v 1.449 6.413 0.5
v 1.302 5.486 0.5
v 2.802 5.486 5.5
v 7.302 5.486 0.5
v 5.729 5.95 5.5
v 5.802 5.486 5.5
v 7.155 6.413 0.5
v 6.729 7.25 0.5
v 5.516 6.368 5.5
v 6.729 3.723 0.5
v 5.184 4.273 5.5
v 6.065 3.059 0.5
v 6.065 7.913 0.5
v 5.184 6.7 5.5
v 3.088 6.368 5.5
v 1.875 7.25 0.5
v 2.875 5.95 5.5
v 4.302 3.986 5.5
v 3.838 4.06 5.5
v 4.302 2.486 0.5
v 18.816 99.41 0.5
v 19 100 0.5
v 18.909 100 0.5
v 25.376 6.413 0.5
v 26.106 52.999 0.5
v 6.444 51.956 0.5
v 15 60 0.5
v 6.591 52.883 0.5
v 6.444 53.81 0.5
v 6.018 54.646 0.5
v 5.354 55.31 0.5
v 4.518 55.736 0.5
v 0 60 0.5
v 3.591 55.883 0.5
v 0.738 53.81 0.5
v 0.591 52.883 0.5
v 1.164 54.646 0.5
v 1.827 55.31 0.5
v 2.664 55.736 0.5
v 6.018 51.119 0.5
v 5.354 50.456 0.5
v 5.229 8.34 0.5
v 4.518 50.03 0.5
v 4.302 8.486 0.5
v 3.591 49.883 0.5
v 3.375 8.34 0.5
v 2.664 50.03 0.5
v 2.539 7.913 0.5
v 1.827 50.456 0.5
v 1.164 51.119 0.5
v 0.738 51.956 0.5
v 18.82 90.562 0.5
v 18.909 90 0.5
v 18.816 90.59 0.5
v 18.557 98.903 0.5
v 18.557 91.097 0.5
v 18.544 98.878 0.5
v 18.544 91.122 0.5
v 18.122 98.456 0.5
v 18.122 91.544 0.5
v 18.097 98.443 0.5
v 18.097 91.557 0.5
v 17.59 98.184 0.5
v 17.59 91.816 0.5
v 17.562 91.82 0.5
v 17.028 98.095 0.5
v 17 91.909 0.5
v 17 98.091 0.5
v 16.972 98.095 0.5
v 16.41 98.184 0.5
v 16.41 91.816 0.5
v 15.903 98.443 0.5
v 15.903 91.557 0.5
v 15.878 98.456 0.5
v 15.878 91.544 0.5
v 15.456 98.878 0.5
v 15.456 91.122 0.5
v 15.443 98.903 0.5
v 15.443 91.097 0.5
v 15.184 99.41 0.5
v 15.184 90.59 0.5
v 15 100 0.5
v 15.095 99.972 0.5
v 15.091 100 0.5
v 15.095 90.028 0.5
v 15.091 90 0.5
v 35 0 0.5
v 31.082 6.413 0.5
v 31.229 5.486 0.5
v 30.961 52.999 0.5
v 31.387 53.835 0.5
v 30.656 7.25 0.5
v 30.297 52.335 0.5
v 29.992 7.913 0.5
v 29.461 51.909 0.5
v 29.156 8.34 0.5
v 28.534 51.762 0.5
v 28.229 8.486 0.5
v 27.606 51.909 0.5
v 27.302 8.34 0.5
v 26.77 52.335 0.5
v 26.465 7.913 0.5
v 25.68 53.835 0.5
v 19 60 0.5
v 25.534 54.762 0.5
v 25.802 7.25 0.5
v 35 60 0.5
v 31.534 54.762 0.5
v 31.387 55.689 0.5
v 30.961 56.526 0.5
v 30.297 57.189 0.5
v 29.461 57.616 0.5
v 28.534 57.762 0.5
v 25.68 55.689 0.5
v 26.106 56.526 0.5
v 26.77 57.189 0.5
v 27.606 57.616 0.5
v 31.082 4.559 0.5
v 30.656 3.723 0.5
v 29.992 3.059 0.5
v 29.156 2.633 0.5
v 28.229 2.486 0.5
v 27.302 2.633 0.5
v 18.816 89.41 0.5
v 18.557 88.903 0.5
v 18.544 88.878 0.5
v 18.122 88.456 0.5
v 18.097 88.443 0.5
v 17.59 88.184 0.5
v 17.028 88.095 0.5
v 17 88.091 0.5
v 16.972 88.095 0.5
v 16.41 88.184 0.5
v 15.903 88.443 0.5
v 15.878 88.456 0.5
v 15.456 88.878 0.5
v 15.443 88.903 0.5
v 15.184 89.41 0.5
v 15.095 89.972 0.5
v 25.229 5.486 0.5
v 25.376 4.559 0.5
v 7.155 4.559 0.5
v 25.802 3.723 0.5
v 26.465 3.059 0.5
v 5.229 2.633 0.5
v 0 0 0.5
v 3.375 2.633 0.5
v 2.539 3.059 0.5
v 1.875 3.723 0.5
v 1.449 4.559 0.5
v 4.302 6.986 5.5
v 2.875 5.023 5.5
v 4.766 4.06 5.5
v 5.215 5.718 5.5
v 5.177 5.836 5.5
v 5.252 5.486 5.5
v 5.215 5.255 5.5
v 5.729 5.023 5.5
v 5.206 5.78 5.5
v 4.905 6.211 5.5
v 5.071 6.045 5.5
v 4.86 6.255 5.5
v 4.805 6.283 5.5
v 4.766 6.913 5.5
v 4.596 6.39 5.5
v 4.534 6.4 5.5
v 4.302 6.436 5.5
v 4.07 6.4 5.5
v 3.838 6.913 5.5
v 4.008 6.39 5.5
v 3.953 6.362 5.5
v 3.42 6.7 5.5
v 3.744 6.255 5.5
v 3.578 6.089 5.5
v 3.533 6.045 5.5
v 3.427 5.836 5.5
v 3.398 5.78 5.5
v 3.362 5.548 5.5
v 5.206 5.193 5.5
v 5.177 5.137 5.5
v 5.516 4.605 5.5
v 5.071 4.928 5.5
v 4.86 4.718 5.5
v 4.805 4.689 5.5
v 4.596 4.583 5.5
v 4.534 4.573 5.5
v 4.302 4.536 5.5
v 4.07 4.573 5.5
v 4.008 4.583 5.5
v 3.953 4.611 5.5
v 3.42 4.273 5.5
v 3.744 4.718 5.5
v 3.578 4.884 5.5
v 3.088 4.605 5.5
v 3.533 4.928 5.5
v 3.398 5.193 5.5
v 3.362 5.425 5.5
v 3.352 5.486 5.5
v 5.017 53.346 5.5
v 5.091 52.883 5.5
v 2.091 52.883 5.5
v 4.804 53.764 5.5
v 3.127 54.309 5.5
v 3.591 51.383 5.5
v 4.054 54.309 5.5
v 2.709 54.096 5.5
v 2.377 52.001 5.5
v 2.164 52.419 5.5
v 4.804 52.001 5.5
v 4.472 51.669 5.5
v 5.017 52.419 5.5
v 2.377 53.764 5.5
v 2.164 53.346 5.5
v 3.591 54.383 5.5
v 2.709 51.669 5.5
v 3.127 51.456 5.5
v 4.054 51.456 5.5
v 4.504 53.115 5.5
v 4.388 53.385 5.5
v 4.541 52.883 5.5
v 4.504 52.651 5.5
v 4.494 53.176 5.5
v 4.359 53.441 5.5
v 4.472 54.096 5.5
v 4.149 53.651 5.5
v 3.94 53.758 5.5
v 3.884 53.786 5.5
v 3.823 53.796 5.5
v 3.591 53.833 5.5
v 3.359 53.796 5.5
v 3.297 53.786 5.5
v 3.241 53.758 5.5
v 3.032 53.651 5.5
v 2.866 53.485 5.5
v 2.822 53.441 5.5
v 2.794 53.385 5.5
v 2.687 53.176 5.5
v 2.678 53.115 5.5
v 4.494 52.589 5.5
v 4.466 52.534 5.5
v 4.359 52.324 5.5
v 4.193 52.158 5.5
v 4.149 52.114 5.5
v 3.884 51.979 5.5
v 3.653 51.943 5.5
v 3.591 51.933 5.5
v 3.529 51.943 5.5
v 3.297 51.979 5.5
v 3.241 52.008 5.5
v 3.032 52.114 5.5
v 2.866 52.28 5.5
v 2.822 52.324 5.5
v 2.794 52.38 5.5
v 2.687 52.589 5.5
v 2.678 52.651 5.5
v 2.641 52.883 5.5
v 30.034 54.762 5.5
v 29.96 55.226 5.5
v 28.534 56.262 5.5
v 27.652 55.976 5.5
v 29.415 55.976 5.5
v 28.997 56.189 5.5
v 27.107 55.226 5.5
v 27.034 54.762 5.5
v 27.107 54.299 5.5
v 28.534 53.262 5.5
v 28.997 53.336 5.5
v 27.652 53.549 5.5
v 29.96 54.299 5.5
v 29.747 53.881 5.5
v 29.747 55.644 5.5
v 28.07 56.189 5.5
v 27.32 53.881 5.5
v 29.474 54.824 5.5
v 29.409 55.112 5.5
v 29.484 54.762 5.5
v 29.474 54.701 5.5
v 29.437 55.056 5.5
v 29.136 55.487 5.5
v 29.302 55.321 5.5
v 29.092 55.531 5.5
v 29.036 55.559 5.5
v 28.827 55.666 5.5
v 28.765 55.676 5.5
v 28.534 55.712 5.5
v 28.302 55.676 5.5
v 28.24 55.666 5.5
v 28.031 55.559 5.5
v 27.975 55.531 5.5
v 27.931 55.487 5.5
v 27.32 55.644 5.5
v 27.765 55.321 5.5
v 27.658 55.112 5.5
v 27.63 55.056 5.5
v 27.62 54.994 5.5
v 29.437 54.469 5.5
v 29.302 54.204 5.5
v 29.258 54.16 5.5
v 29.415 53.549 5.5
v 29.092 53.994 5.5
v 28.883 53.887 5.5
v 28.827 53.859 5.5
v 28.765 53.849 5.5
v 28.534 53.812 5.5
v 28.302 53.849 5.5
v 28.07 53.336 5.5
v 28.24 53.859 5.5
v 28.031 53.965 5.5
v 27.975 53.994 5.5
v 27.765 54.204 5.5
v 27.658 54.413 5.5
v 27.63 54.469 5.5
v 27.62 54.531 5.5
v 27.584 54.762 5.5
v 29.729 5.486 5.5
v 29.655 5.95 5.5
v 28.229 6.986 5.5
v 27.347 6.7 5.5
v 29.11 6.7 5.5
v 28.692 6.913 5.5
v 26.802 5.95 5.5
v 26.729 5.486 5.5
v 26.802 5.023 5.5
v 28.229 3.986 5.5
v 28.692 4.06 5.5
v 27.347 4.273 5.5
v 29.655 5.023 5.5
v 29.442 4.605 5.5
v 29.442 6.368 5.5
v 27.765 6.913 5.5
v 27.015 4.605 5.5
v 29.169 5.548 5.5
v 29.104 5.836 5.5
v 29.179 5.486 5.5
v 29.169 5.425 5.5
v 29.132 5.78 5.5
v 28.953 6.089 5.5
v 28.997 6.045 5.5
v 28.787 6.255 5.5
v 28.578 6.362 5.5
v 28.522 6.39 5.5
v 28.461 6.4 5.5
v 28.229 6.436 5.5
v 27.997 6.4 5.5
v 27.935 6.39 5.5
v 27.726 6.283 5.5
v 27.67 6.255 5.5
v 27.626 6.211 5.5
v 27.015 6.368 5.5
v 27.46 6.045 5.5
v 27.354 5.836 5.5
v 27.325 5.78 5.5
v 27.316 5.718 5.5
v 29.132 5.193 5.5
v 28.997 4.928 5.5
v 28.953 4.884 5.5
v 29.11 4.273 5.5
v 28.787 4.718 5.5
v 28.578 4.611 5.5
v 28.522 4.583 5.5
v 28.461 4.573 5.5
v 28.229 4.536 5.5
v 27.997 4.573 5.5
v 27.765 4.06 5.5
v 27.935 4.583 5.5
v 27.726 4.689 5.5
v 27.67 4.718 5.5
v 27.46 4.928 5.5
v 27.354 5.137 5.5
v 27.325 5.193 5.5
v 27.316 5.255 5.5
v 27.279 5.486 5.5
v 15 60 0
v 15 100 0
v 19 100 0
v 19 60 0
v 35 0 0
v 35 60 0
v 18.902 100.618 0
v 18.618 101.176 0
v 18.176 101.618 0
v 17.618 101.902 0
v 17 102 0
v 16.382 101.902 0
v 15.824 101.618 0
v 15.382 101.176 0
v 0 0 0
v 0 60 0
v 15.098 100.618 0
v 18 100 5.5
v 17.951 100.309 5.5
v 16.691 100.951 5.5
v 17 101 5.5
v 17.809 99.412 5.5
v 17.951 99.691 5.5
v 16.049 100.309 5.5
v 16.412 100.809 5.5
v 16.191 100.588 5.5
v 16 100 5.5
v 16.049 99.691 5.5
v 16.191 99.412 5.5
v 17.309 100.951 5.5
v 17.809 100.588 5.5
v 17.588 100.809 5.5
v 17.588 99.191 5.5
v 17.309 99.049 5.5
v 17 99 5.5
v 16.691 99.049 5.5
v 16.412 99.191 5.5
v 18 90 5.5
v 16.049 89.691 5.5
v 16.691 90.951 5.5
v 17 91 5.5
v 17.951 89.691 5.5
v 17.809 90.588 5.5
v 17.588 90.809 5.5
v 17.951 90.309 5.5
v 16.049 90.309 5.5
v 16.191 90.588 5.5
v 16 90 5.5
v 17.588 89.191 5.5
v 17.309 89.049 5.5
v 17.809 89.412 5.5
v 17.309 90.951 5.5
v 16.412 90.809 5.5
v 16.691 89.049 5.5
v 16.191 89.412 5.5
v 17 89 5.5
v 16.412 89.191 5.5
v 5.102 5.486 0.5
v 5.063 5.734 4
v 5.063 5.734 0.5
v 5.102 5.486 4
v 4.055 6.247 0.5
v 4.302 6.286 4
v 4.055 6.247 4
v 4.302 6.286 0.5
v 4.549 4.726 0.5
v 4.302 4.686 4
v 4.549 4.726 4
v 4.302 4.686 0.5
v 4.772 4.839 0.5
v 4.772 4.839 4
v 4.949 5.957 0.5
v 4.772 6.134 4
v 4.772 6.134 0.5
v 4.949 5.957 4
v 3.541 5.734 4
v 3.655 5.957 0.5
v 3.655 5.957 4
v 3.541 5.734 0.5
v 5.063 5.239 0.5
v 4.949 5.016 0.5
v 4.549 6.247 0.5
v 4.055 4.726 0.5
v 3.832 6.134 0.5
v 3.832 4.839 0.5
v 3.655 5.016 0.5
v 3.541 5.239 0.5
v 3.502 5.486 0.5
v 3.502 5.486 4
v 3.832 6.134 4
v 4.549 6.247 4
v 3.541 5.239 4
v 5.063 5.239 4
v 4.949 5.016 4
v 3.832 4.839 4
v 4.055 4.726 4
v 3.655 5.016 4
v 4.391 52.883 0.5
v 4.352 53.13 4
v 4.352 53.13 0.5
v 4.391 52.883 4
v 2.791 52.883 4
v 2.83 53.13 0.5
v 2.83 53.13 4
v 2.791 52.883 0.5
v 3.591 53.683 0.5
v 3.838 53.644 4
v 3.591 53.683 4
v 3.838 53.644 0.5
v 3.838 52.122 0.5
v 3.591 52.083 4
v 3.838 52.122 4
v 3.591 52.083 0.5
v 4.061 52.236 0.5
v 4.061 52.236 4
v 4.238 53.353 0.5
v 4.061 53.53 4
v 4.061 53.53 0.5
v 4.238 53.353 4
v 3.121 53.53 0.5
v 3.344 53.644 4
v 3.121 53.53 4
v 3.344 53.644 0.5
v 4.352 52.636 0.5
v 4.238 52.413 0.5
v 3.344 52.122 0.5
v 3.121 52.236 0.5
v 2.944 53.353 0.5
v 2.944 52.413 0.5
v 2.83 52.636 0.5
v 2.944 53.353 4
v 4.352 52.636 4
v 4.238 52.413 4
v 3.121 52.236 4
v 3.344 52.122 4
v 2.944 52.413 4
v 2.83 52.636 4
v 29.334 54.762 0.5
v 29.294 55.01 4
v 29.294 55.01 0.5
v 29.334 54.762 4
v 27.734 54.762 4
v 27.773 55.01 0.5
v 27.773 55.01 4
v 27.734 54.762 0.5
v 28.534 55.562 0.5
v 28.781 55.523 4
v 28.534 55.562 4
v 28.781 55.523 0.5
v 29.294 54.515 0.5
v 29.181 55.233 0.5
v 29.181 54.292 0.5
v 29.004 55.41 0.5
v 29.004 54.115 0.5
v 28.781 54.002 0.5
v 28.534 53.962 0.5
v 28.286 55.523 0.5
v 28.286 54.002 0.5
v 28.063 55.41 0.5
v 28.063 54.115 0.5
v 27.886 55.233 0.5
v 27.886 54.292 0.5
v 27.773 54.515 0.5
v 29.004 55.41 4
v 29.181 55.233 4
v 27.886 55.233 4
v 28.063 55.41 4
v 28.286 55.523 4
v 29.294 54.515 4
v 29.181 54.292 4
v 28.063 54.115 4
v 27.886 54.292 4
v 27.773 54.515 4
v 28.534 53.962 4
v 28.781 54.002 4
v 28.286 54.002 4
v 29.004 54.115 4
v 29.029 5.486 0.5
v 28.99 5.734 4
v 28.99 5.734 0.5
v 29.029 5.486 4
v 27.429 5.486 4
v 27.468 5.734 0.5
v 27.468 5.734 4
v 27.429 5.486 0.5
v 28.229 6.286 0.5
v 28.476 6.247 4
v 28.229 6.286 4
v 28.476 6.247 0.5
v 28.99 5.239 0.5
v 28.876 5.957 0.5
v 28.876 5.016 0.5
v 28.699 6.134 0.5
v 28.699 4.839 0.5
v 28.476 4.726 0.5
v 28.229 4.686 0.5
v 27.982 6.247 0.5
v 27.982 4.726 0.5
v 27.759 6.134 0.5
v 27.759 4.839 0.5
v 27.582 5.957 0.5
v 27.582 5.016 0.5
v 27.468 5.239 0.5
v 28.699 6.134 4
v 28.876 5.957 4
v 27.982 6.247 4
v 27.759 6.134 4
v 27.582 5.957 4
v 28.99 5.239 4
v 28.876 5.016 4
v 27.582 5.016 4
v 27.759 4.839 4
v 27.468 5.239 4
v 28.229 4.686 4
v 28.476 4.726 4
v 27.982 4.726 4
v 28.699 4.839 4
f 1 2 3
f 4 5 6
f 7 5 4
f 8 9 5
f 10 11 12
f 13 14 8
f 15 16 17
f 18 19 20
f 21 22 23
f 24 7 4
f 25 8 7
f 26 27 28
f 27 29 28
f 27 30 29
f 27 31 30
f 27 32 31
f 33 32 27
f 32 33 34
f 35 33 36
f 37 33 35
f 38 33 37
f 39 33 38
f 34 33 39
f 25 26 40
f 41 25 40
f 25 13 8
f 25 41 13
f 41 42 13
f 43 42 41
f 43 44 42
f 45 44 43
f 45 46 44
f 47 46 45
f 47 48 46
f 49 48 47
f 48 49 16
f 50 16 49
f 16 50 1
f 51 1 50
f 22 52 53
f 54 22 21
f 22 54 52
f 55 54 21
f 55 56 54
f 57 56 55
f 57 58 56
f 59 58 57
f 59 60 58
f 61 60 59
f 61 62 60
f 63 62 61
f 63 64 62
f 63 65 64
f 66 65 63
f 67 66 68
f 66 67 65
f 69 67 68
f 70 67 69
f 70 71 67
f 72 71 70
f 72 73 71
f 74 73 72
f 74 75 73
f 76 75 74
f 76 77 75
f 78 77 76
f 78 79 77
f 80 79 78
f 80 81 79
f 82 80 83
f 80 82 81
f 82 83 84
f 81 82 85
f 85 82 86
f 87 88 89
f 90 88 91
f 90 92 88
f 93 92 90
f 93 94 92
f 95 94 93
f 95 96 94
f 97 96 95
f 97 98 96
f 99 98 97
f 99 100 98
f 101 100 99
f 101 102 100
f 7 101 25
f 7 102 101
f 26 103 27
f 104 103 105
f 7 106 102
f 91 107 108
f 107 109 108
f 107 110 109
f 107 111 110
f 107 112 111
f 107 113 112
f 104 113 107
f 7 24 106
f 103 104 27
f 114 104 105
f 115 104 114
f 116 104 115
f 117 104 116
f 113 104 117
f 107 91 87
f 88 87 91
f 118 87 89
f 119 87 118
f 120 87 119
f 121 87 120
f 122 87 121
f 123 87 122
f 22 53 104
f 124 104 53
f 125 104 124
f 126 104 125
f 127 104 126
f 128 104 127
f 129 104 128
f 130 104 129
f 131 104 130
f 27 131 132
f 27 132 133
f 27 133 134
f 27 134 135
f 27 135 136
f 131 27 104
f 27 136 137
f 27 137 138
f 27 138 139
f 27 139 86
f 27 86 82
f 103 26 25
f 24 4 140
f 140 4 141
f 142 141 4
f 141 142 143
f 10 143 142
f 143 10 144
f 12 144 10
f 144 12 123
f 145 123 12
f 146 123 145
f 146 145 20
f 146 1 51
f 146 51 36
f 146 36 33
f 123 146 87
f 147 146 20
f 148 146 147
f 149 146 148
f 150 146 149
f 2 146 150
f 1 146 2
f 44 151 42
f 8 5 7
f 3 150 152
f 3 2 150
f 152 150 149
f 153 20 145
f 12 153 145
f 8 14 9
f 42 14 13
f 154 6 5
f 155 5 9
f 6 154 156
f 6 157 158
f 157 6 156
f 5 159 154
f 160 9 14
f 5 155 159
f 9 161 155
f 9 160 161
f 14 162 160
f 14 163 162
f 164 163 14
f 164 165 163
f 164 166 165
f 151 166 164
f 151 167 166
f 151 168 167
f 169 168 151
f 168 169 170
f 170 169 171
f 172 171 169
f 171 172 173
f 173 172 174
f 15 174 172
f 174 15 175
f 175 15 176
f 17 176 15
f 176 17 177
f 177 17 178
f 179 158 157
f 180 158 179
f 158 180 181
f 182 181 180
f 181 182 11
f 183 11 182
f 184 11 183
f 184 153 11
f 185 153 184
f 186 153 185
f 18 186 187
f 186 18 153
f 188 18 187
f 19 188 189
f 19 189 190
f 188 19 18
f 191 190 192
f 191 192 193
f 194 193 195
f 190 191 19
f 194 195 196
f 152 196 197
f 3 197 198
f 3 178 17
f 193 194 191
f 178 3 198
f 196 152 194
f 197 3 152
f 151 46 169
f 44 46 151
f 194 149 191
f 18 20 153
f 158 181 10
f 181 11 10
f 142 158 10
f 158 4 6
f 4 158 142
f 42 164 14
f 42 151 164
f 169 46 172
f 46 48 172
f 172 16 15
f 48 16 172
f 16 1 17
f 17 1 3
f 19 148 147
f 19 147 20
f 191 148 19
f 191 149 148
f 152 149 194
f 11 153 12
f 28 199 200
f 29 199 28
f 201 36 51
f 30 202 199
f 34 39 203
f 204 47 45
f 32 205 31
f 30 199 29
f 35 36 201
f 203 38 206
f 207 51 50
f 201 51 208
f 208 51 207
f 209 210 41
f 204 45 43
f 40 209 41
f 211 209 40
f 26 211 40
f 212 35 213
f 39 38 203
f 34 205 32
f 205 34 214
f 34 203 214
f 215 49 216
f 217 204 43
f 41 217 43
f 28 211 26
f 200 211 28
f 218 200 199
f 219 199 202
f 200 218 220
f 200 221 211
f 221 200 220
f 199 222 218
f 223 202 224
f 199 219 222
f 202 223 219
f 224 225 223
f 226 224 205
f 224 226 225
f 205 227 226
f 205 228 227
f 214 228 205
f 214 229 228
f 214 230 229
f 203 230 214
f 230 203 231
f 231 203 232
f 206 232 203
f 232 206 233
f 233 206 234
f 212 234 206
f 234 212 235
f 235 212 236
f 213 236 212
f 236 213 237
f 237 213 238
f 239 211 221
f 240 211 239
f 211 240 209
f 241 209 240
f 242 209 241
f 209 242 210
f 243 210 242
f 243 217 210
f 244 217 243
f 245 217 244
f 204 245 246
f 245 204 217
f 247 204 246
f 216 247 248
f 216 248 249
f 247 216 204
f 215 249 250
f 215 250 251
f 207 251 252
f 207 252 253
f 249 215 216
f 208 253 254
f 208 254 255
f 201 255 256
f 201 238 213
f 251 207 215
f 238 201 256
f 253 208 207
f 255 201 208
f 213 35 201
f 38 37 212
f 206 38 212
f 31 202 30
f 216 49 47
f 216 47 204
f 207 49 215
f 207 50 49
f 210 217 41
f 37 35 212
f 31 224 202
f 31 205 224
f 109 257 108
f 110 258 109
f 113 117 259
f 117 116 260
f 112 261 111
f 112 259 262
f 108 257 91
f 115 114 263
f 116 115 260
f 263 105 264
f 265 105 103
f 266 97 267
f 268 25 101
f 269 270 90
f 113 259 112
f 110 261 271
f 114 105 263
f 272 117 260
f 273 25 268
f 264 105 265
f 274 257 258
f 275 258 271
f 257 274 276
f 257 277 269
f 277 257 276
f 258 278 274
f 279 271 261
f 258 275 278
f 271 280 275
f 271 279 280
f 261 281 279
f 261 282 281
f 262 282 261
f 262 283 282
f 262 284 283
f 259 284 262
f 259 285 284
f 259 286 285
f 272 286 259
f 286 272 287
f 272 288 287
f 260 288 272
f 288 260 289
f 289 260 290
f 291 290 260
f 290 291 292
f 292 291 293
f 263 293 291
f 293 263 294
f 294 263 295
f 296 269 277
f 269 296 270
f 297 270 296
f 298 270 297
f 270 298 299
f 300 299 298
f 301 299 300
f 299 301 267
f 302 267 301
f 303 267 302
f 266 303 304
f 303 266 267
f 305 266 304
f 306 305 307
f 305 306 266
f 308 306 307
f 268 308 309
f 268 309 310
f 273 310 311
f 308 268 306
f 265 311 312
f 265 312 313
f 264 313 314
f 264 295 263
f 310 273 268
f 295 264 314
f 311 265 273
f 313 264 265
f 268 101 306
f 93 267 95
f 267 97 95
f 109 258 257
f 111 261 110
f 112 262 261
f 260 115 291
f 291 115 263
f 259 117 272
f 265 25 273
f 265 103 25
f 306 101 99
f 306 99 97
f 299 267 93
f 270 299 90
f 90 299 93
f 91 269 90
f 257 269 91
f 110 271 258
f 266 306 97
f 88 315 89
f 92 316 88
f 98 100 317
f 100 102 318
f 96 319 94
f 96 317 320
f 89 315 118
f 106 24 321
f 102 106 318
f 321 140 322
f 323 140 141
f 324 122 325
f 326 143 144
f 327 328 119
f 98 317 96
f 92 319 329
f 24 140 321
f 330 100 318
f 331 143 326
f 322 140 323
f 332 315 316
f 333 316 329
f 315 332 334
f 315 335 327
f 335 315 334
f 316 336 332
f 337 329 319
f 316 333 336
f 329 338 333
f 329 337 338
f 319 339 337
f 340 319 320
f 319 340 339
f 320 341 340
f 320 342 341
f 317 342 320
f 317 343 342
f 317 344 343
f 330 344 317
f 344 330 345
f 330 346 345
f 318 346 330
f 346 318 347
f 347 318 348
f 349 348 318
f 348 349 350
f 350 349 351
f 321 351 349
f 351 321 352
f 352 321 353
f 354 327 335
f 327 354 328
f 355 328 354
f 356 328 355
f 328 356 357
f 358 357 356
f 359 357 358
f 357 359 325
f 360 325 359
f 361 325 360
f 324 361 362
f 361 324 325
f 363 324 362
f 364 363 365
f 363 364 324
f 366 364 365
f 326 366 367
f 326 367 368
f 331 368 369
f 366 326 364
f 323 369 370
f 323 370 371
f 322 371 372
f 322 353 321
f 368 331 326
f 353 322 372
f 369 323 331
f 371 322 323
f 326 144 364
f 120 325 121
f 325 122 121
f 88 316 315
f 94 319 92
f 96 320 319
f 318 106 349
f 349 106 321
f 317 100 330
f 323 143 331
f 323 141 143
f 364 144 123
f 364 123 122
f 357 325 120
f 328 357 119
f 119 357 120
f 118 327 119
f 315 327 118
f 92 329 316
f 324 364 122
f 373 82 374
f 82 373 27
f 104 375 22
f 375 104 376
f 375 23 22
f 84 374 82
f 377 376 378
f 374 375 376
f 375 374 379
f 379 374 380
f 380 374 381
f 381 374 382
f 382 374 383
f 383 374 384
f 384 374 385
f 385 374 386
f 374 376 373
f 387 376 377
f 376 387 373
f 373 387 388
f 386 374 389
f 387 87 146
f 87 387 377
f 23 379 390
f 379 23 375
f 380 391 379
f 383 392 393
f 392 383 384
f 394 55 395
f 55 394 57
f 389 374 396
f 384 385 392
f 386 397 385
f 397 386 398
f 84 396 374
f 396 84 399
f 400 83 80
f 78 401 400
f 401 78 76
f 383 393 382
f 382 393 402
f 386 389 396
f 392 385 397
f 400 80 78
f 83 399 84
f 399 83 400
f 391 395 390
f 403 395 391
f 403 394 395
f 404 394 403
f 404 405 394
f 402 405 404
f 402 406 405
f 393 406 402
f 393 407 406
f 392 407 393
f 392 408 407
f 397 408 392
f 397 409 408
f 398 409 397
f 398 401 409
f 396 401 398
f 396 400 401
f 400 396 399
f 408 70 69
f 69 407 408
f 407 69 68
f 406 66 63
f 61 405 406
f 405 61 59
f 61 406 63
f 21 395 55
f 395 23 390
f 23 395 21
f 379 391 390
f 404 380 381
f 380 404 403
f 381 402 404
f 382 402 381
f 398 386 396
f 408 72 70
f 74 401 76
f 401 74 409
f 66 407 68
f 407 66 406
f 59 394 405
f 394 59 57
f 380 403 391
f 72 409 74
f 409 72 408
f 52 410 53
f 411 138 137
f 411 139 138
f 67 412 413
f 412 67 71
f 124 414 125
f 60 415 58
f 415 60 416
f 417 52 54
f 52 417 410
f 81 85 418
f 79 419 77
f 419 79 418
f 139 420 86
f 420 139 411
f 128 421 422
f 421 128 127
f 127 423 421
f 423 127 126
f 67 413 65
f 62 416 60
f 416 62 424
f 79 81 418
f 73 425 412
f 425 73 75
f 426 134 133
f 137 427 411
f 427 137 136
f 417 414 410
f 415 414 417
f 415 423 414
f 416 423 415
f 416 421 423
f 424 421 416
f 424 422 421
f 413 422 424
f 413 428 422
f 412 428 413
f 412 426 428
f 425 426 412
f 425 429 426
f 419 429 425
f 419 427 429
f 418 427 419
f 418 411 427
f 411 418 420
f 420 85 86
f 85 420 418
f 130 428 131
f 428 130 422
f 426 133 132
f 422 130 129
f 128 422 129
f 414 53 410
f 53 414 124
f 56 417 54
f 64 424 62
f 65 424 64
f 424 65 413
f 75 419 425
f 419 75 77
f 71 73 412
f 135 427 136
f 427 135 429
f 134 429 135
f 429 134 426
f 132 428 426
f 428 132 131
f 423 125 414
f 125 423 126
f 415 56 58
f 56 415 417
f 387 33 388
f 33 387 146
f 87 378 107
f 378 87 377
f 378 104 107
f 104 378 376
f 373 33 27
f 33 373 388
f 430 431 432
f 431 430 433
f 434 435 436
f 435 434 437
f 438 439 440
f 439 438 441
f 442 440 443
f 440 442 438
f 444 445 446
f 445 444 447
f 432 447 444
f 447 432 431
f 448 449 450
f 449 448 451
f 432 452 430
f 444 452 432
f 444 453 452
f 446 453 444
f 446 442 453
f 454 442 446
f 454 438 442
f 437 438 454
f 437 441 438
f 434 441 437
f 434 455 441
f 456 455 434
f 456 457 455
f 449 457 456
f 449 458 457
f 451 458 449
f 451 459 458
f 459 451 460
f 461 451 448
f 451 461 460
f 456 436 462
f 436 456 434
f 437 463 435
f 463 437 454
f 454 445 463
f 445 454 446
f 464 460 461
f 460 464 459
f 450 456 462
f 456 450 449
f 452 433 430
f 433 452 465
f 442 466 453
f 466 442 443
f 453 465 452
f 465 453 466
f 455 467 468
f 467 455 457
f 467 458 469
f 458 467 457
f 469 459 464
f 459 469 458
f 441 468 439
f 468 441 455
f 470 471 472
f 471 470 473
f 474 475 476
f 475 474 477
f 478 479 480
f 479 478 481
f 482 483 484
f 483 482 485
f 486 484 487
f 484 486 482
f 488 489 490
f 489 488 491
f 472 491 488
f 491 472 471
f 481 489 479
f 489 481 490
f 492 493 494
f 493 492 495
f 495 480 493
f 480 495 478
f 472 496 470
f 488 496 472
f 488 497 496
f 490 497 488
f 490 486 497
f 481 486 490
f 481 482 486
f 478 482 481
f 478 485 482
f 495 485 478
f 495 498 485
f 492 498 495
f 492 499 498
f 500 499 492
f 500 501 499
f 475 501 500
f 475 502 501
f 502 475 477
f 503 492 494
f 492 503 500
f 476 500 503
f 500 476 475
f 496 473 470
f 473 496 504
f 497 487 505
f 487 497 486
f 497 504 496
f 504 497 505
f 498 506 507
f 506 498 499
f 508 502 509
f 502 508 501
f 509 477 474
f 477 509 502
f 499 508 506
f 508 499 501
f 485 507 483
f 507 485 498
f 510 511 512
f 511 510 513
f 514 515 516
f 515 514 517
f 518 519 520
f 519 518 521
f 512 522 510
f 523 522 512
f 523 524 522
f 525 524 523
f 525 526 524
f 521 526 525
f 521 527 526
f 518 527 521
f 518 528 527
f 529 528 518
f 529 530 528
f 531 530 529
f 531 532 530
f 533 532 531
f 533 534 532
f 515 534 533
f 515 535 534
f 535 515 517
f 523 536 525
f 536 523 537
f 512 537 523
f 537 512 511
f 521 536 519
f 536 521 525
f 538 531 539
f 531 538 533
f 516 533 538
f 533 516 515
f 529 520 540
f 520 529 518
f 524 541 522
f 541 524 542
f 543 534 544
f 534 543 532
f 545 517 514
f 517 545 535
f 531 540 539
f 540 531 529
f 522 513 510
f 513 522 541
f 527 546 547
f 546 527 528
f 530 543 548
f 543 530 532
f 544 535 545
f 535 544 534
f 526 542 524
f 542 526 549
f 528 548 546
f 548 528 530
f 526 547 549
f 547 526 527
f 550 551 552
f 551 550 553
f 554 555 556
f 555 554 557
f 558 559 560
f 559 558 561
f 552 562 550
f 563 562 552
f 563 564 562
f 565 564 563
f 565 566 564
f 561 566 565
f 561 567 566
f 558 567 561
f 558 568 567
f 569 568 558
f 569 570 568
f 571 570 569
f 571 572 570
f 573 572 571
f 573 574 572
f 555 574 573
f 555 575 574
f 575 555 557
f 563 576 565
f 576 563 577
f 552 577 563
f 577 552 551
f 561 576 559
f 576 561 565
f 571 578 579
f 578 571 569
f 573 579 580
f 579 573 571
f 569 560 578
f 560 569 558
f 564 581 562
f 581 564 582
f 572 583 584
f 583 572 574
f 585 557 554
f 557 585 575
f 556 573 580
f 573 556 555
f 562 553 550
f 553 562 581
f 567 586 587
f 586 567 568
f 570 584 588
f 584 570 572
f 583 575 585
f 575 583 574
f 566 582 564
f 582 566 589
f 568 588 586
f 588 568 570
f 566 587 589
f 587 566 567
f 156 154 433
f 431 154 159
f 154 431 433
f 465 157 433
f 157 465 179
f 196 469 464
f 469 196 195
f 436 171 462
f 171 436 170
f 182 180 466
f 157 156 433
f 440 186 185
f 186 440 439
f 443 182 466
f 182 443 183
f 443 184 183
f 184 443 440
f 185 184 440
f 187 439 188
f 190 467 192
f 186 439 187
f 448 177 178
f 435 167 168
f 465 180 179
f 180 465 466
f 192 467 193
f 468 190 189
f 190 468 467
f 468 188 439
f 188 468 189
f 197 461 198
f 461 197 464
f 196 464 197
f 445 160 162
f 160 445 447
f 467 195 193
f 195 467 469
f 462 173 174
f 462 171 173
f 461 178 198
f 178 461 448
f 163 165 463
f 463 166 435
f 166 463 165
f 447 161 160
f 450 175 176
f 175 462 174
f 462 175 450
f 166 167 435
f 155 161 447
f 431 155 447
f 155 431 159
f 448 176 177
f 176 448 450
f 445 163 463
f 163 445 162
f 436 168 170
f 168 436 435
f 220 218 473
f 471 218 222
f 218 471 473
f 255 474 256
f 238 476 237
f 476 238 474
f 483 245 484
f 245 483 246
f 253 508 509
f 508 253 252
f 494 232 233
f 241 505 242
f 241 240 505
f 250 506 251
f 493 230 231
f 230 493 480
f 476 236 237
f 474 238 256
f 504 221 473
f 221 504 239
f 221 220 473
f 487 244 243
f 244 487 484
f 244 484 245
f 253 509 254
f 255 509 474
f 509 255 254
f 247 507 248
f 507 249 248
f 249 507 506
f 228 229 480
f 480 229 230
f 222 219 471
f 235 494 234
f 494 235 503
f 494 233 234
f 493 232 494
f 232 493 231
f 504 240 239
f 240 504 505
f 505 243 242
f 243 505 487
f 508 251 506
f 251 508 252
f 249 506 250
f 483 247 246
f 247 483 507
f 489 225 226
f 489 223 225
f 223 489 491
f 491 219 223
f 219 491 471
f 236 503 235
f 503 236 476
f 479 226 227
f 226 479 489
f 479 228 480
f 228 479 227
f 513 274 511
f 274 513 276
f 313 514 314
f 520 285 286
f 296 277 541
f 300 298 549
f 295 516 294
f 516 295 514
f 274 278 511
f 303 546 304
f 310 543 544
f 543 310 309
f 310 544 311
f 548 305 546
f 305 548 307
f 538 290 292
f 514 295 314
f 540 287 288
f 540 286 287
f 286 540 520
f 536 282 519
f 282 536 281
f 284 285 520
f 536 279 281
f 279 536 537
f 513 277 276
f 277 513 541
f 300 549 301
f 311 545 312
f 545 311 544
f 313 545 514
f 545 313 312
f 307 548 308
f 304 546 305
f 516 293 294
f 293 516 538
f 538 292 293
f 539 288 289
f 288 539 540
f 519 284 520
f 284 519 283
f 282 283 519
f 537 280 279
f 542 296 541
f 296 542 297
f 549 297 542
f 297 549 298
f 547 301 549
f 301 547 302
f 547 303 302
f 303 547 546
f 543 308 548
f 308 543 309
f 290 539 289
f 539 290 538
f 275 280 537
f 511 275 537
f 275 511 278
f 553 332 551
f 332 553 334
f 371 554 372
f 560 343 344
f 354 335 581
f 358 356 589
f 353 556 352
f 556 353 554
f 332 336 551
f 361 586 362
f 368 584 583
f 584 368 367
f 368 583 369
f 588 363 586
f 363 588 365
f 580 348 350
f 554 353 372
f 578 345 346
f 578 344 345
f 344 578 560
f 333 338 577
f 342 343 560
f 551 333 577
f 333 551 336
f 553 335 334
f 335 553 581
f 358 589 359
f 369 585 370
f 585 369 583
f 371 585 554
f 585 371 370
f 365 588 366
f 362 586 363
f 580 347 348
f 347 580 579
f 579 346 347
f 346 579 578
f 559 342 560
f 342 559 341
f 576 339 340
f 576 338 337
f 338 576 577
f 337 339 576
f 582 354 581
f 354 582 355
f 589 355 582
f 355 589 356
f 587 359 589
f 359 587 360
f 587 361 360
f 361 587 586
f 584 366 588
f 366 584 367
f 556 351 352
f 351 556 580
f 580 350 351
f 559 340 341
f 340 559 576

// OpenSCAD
/*
Alignment Pin Soldering Jig for OTS G2
Author: Brian Khuu (2019)

1mm matrix pins

x, y holes position
3.302, 5.4864
2.5908, 52.8828
27.5336, 54.7624
27.2288, 5.4864

*/
$fn=20;

tol=0.6;
thickness=0.5;
shiftup=0.5;

pinstandoff=5; // Actually 6
pindia=1+tol;
pindiaouter=3;

difference()
{
  union()
  {
    cube([35, 60, thickness]);
    translate([1,   0,  0])
    union()
    {
    translate([3.302,   5.4864,  shiftup]) cylinder(r1=pindiaouter, r2=pindiaouter/2, pinstandoff);
    translate([2.5908,  52.8828, shiftup]) cylinder(r1=pindiaouter, r2=pindiaouter/2, pinstandoff);
    translate([27.5336, 54.7624, shiftup]) cylinder(r1=pindiaouter, r2=pindiaouter/2, pinstandoff);
    translate([27.2288, 5.4864,  shiftup]) cylinder(r1=pindiaouter, r2=pindiaouter/2, pinstandoff);
    }
    
    translate([30/2,0,0])
    union()
    {
      cube([4, 100, thickness]);
      translate([2,   100,  0]) cylinder(r1=2, r2=1, shiftup+pinstandoff);
      translate([2,   90,  0]) cylinder(r1=2, r2=1, shiftup+pinstandoff);
    }
  }

    translate([1,   0,  0])
    union()
    {
  translate([3.302,   5.4864,  shiftup]) cylinder(r=pindia/2, thickness+100);
  translate([2.5908,  52.8828, shiftup]) cylinder(r=pindia/2, thickness+100);
  translate([27.5336, 54.7624, shiftup]) cylinder(r=pindia/2, thickness+100);
  translate([27.2288, 5.4864,  shiftup]) cylinder(r=pindia/2, thickness+100);
  
  // Sit
  translate([3.302,   5.4864,  pinstandoff-1]) cylinder(r1=pindia/2, r2=pindia/2 +0.2, 2);
  translate([2.5908,  52.8828, pinstandoff-1]) cylinder(r1=pindia/2, r2=pindia/2 +0.2, 2);
  translate([27.5336, 54.7624, pinstandoff-1]) cylinder(r1=pindia/2, r2=pindia/2 +0.2, 2);
  translate([27.2288, 5.4864,  pinstandoff-1]) cylinder(r1=pindia/2, r2=pindia/2 +0.2, 2);
    }
}
